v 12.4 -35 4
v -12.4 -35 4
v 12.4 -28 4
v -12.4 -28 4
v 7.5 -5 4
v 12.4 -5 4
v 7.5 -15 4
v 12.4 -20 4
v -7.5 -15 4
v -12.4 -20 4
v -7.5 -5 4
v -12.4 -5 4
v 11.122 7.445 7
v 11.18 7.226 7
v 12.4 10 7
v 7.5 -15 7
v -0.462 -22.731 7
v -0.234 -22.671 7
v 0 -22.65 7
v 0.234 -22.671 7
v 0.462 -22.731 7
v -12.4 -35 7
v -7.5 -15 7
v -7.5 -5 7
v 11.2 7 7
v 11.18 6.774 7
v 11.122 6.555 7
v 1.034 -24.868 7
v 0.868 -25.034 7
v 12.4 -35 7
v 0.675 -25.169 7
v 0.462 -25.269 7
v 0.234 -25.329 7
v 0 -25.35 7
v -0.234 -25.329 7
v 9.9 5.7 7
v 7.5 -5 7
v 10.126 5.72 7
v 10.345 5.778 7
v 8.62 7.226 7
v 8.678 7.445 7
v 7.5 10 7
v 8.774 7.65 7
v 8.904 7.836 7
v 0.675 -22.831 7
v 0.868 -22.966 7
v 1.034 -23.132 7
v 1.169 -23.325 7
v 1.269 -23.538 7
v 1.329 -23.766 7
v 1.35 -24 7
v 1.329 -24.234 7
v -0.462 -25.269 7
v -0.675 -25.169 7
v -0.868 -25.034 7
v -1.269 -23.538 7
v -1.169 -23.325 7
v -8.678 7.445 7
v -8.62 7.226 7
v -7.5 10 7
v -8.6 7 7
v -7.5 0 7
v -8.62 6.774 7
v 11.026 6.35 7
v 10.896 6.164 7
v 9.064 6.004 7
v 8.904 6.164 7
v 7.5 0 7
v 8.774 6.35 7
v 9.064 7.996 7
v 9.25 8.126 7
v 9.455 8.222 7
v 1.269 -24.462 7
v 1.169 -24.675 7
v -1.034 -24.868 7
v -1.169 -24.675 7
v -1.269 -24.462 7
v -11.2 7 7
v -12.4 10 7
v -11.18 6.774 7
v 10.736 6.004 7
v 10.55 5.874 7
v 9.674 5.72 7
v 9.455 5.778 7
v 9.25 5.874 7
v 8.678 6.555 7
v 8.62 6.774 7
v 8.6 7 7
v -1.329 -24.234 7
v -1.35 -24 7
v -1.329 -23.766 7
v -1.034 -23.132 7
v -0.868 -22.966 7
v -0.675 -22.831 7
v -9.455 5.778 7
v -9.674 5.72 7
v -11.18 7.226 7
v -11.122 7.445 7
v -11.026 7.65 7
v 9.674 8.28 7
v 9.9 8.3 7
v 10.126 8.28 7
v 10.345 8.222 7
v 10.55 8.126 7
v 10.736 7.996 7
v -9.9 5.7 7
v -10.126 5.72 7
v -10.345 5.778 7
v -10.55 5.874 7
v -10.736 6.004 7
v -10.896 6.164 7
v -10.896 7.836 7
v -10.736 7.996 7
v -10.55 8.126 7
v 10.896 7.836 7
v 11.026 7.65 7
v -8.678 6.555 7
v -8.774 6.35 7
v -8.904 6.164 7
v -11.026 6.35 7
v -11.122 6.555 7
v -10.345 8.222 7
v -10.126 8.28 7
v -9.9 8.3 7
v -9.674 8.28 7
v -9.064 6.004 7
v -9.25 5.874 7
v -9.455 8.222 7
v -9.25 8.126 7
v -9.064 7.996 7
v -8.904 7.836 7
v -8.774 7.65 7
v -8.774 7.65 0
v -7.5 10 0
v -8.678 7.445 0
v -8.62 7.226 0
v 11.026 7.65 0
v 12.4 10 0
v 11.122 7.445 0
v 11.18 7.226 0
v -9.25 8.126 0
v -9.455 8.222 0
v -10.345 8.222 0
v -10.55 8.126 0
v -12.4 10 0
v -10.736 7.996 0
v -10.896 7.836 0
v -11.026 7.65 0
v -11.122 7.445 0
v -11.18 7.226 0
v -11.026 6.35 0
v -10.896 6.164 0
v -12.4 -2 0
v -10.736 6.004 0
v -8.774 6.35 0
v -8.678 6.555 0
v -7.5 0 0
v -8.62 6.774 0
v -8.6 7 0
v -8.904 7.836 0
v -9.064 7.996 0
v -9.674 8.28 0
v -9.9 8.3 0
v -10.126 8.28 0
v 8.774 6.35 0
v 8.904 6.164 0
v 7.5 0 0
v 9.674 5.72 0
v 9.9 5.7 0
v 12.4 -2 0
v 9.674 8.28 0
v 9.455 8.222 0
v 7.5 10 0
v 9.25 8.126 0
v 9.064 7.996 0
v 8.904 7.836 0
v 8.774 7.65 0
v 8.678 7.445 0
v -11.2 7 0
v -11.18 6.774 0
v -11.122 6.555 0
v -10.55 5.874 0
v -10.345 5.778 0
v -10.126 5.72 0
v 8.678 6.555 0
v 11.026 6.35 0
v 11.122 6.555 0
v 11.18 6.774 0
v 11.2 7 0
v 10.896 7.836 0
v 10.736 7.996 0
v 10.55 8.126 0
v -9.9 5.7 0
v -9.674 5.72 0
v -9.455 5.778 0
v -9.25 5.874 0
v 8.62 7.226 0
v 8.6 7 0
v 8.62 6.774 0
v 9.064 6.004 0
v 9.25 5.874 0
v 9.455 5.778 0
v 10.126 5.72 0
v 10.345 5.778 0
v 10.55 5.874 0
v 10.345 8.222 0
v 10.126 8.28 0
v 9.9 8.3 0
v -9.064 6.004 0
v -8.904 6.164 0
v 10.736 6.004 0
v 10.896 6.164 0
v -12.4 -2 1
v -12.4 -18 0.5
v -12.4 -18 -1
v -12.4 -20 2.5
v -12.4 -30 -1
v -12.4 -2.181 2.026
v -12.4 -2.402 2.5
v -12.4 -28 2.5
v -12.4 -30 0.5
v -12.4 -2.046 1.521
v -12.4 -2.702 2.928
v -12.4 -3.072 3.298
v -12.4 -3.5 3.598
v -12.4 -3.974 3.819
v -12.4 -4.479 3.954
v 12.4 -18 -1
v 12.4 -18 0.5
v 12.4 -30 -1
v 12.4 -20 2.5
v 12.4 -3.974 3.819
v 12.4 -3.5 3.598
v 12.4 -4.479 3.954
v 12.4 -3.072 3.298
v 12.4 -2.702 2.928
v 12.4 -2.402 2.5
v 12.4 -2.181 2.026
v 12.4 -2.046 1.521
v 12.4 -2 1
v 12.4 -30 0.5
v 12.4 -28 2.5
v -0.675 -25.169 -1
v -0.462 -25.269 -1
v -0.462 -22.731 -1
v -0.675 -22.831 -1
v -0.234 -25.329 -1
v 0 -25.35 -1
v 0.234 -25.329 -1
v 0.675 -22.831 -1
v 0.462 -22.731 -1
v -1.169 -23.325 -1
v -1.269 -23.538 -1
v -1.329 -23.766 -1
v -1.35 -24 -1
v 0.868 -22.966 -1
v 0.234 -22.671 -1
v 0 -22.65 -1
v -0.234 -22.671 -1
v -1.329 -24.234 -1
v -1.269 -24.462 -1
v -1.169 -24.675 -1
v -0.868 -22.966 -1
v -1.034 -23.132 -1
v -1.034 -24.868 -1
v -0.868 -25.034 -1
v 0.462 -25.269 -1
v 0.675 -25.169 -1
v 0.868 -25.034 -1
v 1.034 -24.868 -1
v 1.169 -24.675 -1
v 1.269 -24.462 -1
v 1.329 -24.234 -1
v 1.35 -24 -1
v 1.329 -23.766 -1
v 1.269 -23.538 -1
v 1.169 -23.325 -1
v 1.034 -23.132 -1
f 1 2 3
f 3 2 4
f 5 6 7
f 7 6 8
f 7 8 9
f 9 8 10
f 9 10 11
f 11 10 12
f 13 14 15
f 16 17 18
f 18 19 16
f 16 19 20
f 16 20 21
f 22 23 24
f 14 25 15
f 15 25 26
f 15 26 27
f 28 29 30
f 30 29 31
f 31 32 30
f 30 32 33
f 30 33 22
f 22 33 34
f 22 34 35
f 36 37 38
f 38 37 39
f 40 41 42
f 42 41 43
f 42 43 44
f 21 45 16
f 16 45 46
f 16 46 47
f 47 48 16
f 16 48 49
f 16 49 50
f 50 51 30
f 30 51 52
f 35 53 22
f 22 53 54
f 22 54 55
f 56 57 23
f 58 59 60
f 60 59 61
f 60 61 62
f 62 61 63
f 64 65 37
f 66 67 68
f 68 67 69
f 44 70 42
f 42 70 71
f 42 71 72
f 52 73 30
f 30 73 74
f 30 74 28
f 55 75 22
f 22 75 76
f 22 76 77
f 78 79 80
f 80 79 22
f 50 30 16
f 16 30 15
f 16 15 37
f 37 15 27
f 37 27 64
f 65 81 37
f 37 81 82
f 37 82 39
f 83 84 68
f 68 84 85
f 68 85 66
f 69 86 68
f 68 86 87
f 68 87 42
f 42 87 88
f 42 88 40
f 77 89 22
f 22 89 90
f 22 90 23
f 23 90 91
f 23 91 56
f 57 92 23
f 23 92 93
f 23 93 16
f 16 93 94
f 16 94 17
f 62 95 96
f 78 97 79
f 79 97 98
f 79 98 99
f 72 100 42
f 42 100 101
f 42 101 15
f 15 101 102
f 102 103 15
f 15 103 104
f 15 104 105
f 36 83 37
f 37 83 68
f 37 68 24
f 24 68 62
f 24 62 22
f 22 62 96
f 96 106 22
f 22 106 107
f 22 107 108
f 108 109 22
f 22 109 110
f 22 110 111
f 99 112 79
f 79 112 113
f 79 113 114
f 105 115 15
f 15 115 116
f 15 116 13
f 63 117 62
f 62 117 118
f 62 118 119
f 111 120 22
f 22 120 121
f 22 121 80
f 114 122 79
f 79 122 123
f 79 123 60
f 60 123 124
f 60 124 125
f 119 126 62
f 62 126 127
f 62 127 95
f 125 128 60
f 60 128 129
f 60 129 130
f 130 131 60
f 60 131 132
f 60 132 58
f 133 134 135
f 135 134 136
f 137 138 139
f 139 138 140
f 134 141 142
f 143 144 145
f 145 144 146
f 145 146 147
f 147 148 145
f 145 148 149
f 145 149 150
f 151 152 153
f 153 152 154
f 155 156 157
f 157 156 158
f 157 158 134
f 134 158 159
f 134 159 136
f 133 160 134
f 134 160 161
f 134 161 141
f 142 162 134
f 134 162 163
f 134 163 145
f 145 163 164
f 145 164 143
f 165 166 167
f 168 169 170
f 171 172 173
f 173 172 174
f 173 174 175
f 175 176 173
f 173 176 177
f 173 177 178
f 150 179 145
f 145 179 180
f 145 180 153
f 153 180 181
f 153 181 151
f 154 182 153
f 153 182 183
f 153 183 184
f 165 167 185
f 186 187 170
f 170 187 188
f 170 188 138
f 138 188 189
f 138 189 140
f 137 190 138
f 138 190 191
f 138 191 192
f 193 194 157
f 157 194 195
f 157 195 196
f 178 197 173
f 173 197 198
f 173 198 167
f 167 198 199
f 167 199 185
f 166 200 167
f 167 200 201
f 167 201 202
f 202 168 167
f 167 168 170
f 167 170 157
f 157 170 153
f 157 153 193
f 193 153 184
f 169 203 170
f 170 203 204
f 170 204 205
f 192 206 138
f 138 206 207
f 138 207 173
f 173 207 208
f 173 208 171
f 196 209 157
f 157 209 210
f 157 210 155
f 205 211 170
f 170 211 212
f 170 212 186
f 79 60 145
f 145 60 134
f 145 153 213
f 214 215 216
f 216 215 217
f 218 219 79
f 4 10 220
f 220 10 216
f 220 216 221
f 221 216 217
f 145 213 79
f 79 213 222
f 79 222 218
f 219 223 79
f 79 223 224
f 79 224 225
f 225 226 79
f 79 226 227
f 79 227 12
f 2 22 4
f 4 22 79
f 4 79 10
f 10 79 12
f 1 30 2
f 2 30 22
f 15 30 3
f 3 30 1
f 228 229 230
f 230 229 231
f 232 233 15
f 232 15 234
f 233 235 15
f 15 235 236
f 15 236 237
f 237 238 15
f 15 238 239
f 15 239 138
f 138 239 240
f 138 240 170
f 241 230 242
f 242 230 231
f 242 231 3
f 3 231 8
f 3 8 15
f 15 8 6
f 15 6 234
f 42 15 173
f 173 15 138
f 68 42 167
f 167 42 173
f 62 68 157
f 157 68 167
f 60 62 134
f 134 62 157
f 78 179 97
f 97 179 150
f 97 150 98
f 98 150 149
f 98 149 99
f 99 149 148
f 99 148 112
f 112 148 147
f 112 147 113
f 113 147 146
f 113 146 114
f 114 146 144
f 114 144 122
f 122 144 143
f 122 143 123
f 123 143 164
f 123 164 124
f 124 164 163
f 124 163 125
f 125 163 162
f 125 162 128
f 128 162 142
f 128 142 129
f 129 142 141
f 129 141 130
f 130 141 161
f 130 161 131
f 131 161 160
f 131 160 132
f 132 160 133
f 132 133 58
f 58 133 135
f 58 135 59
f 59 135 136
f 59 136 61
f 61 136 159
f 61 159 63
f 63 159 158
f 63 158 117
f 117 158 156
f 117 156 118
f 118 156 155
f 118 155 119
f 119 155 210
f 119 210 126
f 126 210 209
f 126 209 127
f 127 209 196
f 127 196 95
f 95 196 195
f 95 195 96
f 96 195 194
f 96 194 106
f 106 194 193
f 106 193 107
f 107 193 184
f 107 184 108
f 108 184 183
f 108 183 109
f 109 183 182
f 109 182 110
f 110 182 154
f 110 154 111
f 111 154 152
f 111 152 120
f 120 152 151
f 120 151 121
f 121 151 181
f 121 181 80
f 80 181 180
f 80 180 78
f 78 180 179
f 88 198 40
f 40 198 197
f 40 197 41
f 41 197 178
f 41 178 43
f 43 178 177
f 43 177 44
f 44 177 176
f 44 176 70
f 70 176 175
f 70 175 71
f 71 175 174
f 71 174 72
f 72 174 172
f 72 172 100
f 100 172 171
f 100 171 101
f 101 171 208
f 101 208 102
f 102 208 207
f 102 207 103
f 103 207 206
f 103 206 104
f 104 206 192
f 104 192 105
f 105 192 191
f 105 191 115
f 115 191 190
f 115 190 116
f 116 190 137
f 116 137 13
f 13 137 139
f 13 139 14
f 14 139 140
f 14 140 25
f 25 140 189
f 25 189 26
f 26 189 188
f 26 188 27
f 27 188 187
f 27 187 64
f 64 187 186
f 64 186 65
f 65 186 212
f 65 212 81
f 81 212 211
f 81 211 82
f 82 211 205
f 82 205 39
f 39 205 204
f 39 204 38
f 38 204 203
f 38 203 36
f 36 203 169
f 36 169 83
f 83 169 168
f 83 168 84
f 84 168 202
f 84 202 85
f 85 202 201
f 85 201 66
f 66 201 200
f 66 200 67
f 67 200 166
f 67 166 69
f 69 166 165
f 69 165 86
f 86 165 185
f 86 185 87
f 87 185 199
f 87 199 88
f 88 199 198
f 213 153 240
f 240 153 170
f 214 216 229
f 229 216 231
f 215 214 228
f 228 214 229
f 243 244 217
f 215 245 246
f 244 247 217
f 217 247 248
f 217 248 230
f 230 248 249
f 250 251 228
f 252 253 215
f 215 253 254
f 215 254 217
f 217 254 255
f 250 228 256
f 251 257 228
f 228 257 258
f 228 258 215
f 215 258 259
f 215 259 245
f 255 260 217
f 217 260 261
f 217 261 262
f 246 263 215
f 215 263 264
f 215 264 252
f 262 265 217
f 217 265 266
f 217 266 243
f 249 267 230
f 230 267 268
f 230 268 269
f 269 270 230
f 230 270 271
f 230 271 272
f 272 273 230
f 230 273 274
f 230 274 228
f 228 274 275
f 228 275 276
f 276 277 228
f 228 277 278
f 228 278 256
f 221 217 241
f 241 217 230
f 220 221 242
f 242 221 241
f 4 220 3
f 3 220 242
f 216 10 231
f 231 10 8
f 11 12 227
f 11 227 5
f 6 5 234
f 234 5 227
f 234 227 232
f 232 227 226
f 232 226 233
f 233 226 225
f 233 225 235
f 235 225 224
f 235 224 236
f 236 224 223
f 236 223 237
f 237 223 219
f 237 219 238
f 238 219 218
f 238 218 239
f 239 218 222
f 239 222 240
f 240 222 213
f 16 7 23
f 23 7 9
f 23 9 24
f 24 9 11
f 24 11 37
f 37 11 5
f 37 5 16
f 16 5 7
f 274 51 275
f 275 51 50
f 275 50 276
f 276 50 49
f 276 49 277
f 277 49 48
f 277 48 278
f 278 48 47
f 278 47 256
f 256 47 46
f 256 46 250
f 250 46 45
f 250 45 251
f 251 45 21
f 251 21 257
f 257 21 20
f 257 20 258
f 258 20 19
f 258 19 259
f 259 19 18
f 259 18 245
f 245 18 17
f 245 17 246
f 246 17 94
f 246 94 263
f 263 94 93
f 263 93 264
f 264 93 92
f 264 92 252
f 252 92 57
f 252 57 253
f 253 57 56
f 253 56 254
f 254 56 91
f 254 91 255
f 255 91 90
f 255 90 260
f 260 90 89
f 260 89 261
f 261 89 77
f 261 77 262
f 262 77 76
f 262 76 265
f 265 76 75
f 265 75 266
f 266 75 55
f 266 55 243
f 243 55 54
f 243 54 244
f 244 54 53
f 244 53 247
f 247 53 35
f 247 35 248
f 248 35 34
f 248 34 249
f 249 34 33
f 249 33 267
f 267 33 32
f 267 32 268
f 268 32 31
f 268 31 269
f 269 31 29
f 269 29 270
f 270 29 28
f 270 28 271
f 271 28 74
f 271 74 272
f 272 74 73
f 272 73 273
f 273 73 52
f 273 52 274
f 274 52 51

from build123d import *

# Parameters (mm, degrees)
SKETCH1_R                        = 1.3
MAIN_DEPTH                       = 7
SKETCH3_W                        = 4
SKETCH3_H                        = 33
CUT_EXTRUDE1_DEPTH               = 25.8
FIXSUPPORT_DEPTH                 = 12.4
FILLET1_R                        = 3
SKETCH4_W                        = 15
SKETCH4_H                        = 10
CUTFORSCREWRAILACCESS_DEPTH      = 9
SKETCH5_R                        = 1.35
HOLETOBLOCKSYSTEMWITHSCREW_DEPTH = 9


with BuildPart() as part:
    # Sketch1 → Main (new body)
    with BuildSketch(Plane.XY):
        Polygon((-7.5, 10), (-7.5, 0), (7.5, 0), (7.5, 10), (12.4, 10), (12.4, -35), (-12.4, -35), (-12.4, 10), align=None)
        with Locations((-9.9, 7)):
            Circle(SKETCH1_R, mode=Mode.SUBTRACT)
        with Locations((9.9, 7)):
            Circle(SKETCH1_R, mode=Mode.SUBTRACT)
    extrude(amount=MAIN_DEPTH)

    # Sketch3 → Cut-Extrude1 (cut, through all)
    with BuildSketch(Plane.ZY.offset(12.4)):
        with Locations((2, -18.5)):
            Rectangle(SKETCH3_W, SKETCH3_H)
    extrude(amount=-CUT_EXTRUDE1_DEPTH, mode=Mode.SUBTRACT)

    # Sketch2 → FixSupport (add, symmetric)
    with BuildSketch(Plane.ZY):
        Polygon((0.5, -18), (-1, -18), (-1, -30), (0.5, -30), (2.5, -28), (4, -28), (4, -20), (2.5, -20), align=None)
    extrude(amount=FIXSUPPORT_DEPTH, both=True)

    # Fillet1
    fillet1_edges = [part.edges().sort_by_distance(p)[0] for p in [
        (0, -2, 4),
    ]]
    fillet(fillet1_edges, radius=FILLET1_R)

    # Sketch4 → CutForScrewRailAccess (cut, through all)
    with BuildSketch(Plane.XY.offset(7)):
        with Locations((0, -10)):
            Rectangle(SKETCH4_W, SKETCH4_H)
    extrude(amount=-CUTFORSCREWRAILACCESS_DEPTH, mode=Mode.SUBTRACT)

    # Sketch5 → HoleToBlockSystemWithScrew (cut, through all)
    with BuildSketch(Plane.XY.offset(7)):
        with Locations((0, -24)):
            Circle(SKETCH5_R)
    extrude(amount=-HOLETOBLOCKSYSTEMWITHSCREW_DEPTH, mode=Mode.SUBTRACT)


solid = part.part
